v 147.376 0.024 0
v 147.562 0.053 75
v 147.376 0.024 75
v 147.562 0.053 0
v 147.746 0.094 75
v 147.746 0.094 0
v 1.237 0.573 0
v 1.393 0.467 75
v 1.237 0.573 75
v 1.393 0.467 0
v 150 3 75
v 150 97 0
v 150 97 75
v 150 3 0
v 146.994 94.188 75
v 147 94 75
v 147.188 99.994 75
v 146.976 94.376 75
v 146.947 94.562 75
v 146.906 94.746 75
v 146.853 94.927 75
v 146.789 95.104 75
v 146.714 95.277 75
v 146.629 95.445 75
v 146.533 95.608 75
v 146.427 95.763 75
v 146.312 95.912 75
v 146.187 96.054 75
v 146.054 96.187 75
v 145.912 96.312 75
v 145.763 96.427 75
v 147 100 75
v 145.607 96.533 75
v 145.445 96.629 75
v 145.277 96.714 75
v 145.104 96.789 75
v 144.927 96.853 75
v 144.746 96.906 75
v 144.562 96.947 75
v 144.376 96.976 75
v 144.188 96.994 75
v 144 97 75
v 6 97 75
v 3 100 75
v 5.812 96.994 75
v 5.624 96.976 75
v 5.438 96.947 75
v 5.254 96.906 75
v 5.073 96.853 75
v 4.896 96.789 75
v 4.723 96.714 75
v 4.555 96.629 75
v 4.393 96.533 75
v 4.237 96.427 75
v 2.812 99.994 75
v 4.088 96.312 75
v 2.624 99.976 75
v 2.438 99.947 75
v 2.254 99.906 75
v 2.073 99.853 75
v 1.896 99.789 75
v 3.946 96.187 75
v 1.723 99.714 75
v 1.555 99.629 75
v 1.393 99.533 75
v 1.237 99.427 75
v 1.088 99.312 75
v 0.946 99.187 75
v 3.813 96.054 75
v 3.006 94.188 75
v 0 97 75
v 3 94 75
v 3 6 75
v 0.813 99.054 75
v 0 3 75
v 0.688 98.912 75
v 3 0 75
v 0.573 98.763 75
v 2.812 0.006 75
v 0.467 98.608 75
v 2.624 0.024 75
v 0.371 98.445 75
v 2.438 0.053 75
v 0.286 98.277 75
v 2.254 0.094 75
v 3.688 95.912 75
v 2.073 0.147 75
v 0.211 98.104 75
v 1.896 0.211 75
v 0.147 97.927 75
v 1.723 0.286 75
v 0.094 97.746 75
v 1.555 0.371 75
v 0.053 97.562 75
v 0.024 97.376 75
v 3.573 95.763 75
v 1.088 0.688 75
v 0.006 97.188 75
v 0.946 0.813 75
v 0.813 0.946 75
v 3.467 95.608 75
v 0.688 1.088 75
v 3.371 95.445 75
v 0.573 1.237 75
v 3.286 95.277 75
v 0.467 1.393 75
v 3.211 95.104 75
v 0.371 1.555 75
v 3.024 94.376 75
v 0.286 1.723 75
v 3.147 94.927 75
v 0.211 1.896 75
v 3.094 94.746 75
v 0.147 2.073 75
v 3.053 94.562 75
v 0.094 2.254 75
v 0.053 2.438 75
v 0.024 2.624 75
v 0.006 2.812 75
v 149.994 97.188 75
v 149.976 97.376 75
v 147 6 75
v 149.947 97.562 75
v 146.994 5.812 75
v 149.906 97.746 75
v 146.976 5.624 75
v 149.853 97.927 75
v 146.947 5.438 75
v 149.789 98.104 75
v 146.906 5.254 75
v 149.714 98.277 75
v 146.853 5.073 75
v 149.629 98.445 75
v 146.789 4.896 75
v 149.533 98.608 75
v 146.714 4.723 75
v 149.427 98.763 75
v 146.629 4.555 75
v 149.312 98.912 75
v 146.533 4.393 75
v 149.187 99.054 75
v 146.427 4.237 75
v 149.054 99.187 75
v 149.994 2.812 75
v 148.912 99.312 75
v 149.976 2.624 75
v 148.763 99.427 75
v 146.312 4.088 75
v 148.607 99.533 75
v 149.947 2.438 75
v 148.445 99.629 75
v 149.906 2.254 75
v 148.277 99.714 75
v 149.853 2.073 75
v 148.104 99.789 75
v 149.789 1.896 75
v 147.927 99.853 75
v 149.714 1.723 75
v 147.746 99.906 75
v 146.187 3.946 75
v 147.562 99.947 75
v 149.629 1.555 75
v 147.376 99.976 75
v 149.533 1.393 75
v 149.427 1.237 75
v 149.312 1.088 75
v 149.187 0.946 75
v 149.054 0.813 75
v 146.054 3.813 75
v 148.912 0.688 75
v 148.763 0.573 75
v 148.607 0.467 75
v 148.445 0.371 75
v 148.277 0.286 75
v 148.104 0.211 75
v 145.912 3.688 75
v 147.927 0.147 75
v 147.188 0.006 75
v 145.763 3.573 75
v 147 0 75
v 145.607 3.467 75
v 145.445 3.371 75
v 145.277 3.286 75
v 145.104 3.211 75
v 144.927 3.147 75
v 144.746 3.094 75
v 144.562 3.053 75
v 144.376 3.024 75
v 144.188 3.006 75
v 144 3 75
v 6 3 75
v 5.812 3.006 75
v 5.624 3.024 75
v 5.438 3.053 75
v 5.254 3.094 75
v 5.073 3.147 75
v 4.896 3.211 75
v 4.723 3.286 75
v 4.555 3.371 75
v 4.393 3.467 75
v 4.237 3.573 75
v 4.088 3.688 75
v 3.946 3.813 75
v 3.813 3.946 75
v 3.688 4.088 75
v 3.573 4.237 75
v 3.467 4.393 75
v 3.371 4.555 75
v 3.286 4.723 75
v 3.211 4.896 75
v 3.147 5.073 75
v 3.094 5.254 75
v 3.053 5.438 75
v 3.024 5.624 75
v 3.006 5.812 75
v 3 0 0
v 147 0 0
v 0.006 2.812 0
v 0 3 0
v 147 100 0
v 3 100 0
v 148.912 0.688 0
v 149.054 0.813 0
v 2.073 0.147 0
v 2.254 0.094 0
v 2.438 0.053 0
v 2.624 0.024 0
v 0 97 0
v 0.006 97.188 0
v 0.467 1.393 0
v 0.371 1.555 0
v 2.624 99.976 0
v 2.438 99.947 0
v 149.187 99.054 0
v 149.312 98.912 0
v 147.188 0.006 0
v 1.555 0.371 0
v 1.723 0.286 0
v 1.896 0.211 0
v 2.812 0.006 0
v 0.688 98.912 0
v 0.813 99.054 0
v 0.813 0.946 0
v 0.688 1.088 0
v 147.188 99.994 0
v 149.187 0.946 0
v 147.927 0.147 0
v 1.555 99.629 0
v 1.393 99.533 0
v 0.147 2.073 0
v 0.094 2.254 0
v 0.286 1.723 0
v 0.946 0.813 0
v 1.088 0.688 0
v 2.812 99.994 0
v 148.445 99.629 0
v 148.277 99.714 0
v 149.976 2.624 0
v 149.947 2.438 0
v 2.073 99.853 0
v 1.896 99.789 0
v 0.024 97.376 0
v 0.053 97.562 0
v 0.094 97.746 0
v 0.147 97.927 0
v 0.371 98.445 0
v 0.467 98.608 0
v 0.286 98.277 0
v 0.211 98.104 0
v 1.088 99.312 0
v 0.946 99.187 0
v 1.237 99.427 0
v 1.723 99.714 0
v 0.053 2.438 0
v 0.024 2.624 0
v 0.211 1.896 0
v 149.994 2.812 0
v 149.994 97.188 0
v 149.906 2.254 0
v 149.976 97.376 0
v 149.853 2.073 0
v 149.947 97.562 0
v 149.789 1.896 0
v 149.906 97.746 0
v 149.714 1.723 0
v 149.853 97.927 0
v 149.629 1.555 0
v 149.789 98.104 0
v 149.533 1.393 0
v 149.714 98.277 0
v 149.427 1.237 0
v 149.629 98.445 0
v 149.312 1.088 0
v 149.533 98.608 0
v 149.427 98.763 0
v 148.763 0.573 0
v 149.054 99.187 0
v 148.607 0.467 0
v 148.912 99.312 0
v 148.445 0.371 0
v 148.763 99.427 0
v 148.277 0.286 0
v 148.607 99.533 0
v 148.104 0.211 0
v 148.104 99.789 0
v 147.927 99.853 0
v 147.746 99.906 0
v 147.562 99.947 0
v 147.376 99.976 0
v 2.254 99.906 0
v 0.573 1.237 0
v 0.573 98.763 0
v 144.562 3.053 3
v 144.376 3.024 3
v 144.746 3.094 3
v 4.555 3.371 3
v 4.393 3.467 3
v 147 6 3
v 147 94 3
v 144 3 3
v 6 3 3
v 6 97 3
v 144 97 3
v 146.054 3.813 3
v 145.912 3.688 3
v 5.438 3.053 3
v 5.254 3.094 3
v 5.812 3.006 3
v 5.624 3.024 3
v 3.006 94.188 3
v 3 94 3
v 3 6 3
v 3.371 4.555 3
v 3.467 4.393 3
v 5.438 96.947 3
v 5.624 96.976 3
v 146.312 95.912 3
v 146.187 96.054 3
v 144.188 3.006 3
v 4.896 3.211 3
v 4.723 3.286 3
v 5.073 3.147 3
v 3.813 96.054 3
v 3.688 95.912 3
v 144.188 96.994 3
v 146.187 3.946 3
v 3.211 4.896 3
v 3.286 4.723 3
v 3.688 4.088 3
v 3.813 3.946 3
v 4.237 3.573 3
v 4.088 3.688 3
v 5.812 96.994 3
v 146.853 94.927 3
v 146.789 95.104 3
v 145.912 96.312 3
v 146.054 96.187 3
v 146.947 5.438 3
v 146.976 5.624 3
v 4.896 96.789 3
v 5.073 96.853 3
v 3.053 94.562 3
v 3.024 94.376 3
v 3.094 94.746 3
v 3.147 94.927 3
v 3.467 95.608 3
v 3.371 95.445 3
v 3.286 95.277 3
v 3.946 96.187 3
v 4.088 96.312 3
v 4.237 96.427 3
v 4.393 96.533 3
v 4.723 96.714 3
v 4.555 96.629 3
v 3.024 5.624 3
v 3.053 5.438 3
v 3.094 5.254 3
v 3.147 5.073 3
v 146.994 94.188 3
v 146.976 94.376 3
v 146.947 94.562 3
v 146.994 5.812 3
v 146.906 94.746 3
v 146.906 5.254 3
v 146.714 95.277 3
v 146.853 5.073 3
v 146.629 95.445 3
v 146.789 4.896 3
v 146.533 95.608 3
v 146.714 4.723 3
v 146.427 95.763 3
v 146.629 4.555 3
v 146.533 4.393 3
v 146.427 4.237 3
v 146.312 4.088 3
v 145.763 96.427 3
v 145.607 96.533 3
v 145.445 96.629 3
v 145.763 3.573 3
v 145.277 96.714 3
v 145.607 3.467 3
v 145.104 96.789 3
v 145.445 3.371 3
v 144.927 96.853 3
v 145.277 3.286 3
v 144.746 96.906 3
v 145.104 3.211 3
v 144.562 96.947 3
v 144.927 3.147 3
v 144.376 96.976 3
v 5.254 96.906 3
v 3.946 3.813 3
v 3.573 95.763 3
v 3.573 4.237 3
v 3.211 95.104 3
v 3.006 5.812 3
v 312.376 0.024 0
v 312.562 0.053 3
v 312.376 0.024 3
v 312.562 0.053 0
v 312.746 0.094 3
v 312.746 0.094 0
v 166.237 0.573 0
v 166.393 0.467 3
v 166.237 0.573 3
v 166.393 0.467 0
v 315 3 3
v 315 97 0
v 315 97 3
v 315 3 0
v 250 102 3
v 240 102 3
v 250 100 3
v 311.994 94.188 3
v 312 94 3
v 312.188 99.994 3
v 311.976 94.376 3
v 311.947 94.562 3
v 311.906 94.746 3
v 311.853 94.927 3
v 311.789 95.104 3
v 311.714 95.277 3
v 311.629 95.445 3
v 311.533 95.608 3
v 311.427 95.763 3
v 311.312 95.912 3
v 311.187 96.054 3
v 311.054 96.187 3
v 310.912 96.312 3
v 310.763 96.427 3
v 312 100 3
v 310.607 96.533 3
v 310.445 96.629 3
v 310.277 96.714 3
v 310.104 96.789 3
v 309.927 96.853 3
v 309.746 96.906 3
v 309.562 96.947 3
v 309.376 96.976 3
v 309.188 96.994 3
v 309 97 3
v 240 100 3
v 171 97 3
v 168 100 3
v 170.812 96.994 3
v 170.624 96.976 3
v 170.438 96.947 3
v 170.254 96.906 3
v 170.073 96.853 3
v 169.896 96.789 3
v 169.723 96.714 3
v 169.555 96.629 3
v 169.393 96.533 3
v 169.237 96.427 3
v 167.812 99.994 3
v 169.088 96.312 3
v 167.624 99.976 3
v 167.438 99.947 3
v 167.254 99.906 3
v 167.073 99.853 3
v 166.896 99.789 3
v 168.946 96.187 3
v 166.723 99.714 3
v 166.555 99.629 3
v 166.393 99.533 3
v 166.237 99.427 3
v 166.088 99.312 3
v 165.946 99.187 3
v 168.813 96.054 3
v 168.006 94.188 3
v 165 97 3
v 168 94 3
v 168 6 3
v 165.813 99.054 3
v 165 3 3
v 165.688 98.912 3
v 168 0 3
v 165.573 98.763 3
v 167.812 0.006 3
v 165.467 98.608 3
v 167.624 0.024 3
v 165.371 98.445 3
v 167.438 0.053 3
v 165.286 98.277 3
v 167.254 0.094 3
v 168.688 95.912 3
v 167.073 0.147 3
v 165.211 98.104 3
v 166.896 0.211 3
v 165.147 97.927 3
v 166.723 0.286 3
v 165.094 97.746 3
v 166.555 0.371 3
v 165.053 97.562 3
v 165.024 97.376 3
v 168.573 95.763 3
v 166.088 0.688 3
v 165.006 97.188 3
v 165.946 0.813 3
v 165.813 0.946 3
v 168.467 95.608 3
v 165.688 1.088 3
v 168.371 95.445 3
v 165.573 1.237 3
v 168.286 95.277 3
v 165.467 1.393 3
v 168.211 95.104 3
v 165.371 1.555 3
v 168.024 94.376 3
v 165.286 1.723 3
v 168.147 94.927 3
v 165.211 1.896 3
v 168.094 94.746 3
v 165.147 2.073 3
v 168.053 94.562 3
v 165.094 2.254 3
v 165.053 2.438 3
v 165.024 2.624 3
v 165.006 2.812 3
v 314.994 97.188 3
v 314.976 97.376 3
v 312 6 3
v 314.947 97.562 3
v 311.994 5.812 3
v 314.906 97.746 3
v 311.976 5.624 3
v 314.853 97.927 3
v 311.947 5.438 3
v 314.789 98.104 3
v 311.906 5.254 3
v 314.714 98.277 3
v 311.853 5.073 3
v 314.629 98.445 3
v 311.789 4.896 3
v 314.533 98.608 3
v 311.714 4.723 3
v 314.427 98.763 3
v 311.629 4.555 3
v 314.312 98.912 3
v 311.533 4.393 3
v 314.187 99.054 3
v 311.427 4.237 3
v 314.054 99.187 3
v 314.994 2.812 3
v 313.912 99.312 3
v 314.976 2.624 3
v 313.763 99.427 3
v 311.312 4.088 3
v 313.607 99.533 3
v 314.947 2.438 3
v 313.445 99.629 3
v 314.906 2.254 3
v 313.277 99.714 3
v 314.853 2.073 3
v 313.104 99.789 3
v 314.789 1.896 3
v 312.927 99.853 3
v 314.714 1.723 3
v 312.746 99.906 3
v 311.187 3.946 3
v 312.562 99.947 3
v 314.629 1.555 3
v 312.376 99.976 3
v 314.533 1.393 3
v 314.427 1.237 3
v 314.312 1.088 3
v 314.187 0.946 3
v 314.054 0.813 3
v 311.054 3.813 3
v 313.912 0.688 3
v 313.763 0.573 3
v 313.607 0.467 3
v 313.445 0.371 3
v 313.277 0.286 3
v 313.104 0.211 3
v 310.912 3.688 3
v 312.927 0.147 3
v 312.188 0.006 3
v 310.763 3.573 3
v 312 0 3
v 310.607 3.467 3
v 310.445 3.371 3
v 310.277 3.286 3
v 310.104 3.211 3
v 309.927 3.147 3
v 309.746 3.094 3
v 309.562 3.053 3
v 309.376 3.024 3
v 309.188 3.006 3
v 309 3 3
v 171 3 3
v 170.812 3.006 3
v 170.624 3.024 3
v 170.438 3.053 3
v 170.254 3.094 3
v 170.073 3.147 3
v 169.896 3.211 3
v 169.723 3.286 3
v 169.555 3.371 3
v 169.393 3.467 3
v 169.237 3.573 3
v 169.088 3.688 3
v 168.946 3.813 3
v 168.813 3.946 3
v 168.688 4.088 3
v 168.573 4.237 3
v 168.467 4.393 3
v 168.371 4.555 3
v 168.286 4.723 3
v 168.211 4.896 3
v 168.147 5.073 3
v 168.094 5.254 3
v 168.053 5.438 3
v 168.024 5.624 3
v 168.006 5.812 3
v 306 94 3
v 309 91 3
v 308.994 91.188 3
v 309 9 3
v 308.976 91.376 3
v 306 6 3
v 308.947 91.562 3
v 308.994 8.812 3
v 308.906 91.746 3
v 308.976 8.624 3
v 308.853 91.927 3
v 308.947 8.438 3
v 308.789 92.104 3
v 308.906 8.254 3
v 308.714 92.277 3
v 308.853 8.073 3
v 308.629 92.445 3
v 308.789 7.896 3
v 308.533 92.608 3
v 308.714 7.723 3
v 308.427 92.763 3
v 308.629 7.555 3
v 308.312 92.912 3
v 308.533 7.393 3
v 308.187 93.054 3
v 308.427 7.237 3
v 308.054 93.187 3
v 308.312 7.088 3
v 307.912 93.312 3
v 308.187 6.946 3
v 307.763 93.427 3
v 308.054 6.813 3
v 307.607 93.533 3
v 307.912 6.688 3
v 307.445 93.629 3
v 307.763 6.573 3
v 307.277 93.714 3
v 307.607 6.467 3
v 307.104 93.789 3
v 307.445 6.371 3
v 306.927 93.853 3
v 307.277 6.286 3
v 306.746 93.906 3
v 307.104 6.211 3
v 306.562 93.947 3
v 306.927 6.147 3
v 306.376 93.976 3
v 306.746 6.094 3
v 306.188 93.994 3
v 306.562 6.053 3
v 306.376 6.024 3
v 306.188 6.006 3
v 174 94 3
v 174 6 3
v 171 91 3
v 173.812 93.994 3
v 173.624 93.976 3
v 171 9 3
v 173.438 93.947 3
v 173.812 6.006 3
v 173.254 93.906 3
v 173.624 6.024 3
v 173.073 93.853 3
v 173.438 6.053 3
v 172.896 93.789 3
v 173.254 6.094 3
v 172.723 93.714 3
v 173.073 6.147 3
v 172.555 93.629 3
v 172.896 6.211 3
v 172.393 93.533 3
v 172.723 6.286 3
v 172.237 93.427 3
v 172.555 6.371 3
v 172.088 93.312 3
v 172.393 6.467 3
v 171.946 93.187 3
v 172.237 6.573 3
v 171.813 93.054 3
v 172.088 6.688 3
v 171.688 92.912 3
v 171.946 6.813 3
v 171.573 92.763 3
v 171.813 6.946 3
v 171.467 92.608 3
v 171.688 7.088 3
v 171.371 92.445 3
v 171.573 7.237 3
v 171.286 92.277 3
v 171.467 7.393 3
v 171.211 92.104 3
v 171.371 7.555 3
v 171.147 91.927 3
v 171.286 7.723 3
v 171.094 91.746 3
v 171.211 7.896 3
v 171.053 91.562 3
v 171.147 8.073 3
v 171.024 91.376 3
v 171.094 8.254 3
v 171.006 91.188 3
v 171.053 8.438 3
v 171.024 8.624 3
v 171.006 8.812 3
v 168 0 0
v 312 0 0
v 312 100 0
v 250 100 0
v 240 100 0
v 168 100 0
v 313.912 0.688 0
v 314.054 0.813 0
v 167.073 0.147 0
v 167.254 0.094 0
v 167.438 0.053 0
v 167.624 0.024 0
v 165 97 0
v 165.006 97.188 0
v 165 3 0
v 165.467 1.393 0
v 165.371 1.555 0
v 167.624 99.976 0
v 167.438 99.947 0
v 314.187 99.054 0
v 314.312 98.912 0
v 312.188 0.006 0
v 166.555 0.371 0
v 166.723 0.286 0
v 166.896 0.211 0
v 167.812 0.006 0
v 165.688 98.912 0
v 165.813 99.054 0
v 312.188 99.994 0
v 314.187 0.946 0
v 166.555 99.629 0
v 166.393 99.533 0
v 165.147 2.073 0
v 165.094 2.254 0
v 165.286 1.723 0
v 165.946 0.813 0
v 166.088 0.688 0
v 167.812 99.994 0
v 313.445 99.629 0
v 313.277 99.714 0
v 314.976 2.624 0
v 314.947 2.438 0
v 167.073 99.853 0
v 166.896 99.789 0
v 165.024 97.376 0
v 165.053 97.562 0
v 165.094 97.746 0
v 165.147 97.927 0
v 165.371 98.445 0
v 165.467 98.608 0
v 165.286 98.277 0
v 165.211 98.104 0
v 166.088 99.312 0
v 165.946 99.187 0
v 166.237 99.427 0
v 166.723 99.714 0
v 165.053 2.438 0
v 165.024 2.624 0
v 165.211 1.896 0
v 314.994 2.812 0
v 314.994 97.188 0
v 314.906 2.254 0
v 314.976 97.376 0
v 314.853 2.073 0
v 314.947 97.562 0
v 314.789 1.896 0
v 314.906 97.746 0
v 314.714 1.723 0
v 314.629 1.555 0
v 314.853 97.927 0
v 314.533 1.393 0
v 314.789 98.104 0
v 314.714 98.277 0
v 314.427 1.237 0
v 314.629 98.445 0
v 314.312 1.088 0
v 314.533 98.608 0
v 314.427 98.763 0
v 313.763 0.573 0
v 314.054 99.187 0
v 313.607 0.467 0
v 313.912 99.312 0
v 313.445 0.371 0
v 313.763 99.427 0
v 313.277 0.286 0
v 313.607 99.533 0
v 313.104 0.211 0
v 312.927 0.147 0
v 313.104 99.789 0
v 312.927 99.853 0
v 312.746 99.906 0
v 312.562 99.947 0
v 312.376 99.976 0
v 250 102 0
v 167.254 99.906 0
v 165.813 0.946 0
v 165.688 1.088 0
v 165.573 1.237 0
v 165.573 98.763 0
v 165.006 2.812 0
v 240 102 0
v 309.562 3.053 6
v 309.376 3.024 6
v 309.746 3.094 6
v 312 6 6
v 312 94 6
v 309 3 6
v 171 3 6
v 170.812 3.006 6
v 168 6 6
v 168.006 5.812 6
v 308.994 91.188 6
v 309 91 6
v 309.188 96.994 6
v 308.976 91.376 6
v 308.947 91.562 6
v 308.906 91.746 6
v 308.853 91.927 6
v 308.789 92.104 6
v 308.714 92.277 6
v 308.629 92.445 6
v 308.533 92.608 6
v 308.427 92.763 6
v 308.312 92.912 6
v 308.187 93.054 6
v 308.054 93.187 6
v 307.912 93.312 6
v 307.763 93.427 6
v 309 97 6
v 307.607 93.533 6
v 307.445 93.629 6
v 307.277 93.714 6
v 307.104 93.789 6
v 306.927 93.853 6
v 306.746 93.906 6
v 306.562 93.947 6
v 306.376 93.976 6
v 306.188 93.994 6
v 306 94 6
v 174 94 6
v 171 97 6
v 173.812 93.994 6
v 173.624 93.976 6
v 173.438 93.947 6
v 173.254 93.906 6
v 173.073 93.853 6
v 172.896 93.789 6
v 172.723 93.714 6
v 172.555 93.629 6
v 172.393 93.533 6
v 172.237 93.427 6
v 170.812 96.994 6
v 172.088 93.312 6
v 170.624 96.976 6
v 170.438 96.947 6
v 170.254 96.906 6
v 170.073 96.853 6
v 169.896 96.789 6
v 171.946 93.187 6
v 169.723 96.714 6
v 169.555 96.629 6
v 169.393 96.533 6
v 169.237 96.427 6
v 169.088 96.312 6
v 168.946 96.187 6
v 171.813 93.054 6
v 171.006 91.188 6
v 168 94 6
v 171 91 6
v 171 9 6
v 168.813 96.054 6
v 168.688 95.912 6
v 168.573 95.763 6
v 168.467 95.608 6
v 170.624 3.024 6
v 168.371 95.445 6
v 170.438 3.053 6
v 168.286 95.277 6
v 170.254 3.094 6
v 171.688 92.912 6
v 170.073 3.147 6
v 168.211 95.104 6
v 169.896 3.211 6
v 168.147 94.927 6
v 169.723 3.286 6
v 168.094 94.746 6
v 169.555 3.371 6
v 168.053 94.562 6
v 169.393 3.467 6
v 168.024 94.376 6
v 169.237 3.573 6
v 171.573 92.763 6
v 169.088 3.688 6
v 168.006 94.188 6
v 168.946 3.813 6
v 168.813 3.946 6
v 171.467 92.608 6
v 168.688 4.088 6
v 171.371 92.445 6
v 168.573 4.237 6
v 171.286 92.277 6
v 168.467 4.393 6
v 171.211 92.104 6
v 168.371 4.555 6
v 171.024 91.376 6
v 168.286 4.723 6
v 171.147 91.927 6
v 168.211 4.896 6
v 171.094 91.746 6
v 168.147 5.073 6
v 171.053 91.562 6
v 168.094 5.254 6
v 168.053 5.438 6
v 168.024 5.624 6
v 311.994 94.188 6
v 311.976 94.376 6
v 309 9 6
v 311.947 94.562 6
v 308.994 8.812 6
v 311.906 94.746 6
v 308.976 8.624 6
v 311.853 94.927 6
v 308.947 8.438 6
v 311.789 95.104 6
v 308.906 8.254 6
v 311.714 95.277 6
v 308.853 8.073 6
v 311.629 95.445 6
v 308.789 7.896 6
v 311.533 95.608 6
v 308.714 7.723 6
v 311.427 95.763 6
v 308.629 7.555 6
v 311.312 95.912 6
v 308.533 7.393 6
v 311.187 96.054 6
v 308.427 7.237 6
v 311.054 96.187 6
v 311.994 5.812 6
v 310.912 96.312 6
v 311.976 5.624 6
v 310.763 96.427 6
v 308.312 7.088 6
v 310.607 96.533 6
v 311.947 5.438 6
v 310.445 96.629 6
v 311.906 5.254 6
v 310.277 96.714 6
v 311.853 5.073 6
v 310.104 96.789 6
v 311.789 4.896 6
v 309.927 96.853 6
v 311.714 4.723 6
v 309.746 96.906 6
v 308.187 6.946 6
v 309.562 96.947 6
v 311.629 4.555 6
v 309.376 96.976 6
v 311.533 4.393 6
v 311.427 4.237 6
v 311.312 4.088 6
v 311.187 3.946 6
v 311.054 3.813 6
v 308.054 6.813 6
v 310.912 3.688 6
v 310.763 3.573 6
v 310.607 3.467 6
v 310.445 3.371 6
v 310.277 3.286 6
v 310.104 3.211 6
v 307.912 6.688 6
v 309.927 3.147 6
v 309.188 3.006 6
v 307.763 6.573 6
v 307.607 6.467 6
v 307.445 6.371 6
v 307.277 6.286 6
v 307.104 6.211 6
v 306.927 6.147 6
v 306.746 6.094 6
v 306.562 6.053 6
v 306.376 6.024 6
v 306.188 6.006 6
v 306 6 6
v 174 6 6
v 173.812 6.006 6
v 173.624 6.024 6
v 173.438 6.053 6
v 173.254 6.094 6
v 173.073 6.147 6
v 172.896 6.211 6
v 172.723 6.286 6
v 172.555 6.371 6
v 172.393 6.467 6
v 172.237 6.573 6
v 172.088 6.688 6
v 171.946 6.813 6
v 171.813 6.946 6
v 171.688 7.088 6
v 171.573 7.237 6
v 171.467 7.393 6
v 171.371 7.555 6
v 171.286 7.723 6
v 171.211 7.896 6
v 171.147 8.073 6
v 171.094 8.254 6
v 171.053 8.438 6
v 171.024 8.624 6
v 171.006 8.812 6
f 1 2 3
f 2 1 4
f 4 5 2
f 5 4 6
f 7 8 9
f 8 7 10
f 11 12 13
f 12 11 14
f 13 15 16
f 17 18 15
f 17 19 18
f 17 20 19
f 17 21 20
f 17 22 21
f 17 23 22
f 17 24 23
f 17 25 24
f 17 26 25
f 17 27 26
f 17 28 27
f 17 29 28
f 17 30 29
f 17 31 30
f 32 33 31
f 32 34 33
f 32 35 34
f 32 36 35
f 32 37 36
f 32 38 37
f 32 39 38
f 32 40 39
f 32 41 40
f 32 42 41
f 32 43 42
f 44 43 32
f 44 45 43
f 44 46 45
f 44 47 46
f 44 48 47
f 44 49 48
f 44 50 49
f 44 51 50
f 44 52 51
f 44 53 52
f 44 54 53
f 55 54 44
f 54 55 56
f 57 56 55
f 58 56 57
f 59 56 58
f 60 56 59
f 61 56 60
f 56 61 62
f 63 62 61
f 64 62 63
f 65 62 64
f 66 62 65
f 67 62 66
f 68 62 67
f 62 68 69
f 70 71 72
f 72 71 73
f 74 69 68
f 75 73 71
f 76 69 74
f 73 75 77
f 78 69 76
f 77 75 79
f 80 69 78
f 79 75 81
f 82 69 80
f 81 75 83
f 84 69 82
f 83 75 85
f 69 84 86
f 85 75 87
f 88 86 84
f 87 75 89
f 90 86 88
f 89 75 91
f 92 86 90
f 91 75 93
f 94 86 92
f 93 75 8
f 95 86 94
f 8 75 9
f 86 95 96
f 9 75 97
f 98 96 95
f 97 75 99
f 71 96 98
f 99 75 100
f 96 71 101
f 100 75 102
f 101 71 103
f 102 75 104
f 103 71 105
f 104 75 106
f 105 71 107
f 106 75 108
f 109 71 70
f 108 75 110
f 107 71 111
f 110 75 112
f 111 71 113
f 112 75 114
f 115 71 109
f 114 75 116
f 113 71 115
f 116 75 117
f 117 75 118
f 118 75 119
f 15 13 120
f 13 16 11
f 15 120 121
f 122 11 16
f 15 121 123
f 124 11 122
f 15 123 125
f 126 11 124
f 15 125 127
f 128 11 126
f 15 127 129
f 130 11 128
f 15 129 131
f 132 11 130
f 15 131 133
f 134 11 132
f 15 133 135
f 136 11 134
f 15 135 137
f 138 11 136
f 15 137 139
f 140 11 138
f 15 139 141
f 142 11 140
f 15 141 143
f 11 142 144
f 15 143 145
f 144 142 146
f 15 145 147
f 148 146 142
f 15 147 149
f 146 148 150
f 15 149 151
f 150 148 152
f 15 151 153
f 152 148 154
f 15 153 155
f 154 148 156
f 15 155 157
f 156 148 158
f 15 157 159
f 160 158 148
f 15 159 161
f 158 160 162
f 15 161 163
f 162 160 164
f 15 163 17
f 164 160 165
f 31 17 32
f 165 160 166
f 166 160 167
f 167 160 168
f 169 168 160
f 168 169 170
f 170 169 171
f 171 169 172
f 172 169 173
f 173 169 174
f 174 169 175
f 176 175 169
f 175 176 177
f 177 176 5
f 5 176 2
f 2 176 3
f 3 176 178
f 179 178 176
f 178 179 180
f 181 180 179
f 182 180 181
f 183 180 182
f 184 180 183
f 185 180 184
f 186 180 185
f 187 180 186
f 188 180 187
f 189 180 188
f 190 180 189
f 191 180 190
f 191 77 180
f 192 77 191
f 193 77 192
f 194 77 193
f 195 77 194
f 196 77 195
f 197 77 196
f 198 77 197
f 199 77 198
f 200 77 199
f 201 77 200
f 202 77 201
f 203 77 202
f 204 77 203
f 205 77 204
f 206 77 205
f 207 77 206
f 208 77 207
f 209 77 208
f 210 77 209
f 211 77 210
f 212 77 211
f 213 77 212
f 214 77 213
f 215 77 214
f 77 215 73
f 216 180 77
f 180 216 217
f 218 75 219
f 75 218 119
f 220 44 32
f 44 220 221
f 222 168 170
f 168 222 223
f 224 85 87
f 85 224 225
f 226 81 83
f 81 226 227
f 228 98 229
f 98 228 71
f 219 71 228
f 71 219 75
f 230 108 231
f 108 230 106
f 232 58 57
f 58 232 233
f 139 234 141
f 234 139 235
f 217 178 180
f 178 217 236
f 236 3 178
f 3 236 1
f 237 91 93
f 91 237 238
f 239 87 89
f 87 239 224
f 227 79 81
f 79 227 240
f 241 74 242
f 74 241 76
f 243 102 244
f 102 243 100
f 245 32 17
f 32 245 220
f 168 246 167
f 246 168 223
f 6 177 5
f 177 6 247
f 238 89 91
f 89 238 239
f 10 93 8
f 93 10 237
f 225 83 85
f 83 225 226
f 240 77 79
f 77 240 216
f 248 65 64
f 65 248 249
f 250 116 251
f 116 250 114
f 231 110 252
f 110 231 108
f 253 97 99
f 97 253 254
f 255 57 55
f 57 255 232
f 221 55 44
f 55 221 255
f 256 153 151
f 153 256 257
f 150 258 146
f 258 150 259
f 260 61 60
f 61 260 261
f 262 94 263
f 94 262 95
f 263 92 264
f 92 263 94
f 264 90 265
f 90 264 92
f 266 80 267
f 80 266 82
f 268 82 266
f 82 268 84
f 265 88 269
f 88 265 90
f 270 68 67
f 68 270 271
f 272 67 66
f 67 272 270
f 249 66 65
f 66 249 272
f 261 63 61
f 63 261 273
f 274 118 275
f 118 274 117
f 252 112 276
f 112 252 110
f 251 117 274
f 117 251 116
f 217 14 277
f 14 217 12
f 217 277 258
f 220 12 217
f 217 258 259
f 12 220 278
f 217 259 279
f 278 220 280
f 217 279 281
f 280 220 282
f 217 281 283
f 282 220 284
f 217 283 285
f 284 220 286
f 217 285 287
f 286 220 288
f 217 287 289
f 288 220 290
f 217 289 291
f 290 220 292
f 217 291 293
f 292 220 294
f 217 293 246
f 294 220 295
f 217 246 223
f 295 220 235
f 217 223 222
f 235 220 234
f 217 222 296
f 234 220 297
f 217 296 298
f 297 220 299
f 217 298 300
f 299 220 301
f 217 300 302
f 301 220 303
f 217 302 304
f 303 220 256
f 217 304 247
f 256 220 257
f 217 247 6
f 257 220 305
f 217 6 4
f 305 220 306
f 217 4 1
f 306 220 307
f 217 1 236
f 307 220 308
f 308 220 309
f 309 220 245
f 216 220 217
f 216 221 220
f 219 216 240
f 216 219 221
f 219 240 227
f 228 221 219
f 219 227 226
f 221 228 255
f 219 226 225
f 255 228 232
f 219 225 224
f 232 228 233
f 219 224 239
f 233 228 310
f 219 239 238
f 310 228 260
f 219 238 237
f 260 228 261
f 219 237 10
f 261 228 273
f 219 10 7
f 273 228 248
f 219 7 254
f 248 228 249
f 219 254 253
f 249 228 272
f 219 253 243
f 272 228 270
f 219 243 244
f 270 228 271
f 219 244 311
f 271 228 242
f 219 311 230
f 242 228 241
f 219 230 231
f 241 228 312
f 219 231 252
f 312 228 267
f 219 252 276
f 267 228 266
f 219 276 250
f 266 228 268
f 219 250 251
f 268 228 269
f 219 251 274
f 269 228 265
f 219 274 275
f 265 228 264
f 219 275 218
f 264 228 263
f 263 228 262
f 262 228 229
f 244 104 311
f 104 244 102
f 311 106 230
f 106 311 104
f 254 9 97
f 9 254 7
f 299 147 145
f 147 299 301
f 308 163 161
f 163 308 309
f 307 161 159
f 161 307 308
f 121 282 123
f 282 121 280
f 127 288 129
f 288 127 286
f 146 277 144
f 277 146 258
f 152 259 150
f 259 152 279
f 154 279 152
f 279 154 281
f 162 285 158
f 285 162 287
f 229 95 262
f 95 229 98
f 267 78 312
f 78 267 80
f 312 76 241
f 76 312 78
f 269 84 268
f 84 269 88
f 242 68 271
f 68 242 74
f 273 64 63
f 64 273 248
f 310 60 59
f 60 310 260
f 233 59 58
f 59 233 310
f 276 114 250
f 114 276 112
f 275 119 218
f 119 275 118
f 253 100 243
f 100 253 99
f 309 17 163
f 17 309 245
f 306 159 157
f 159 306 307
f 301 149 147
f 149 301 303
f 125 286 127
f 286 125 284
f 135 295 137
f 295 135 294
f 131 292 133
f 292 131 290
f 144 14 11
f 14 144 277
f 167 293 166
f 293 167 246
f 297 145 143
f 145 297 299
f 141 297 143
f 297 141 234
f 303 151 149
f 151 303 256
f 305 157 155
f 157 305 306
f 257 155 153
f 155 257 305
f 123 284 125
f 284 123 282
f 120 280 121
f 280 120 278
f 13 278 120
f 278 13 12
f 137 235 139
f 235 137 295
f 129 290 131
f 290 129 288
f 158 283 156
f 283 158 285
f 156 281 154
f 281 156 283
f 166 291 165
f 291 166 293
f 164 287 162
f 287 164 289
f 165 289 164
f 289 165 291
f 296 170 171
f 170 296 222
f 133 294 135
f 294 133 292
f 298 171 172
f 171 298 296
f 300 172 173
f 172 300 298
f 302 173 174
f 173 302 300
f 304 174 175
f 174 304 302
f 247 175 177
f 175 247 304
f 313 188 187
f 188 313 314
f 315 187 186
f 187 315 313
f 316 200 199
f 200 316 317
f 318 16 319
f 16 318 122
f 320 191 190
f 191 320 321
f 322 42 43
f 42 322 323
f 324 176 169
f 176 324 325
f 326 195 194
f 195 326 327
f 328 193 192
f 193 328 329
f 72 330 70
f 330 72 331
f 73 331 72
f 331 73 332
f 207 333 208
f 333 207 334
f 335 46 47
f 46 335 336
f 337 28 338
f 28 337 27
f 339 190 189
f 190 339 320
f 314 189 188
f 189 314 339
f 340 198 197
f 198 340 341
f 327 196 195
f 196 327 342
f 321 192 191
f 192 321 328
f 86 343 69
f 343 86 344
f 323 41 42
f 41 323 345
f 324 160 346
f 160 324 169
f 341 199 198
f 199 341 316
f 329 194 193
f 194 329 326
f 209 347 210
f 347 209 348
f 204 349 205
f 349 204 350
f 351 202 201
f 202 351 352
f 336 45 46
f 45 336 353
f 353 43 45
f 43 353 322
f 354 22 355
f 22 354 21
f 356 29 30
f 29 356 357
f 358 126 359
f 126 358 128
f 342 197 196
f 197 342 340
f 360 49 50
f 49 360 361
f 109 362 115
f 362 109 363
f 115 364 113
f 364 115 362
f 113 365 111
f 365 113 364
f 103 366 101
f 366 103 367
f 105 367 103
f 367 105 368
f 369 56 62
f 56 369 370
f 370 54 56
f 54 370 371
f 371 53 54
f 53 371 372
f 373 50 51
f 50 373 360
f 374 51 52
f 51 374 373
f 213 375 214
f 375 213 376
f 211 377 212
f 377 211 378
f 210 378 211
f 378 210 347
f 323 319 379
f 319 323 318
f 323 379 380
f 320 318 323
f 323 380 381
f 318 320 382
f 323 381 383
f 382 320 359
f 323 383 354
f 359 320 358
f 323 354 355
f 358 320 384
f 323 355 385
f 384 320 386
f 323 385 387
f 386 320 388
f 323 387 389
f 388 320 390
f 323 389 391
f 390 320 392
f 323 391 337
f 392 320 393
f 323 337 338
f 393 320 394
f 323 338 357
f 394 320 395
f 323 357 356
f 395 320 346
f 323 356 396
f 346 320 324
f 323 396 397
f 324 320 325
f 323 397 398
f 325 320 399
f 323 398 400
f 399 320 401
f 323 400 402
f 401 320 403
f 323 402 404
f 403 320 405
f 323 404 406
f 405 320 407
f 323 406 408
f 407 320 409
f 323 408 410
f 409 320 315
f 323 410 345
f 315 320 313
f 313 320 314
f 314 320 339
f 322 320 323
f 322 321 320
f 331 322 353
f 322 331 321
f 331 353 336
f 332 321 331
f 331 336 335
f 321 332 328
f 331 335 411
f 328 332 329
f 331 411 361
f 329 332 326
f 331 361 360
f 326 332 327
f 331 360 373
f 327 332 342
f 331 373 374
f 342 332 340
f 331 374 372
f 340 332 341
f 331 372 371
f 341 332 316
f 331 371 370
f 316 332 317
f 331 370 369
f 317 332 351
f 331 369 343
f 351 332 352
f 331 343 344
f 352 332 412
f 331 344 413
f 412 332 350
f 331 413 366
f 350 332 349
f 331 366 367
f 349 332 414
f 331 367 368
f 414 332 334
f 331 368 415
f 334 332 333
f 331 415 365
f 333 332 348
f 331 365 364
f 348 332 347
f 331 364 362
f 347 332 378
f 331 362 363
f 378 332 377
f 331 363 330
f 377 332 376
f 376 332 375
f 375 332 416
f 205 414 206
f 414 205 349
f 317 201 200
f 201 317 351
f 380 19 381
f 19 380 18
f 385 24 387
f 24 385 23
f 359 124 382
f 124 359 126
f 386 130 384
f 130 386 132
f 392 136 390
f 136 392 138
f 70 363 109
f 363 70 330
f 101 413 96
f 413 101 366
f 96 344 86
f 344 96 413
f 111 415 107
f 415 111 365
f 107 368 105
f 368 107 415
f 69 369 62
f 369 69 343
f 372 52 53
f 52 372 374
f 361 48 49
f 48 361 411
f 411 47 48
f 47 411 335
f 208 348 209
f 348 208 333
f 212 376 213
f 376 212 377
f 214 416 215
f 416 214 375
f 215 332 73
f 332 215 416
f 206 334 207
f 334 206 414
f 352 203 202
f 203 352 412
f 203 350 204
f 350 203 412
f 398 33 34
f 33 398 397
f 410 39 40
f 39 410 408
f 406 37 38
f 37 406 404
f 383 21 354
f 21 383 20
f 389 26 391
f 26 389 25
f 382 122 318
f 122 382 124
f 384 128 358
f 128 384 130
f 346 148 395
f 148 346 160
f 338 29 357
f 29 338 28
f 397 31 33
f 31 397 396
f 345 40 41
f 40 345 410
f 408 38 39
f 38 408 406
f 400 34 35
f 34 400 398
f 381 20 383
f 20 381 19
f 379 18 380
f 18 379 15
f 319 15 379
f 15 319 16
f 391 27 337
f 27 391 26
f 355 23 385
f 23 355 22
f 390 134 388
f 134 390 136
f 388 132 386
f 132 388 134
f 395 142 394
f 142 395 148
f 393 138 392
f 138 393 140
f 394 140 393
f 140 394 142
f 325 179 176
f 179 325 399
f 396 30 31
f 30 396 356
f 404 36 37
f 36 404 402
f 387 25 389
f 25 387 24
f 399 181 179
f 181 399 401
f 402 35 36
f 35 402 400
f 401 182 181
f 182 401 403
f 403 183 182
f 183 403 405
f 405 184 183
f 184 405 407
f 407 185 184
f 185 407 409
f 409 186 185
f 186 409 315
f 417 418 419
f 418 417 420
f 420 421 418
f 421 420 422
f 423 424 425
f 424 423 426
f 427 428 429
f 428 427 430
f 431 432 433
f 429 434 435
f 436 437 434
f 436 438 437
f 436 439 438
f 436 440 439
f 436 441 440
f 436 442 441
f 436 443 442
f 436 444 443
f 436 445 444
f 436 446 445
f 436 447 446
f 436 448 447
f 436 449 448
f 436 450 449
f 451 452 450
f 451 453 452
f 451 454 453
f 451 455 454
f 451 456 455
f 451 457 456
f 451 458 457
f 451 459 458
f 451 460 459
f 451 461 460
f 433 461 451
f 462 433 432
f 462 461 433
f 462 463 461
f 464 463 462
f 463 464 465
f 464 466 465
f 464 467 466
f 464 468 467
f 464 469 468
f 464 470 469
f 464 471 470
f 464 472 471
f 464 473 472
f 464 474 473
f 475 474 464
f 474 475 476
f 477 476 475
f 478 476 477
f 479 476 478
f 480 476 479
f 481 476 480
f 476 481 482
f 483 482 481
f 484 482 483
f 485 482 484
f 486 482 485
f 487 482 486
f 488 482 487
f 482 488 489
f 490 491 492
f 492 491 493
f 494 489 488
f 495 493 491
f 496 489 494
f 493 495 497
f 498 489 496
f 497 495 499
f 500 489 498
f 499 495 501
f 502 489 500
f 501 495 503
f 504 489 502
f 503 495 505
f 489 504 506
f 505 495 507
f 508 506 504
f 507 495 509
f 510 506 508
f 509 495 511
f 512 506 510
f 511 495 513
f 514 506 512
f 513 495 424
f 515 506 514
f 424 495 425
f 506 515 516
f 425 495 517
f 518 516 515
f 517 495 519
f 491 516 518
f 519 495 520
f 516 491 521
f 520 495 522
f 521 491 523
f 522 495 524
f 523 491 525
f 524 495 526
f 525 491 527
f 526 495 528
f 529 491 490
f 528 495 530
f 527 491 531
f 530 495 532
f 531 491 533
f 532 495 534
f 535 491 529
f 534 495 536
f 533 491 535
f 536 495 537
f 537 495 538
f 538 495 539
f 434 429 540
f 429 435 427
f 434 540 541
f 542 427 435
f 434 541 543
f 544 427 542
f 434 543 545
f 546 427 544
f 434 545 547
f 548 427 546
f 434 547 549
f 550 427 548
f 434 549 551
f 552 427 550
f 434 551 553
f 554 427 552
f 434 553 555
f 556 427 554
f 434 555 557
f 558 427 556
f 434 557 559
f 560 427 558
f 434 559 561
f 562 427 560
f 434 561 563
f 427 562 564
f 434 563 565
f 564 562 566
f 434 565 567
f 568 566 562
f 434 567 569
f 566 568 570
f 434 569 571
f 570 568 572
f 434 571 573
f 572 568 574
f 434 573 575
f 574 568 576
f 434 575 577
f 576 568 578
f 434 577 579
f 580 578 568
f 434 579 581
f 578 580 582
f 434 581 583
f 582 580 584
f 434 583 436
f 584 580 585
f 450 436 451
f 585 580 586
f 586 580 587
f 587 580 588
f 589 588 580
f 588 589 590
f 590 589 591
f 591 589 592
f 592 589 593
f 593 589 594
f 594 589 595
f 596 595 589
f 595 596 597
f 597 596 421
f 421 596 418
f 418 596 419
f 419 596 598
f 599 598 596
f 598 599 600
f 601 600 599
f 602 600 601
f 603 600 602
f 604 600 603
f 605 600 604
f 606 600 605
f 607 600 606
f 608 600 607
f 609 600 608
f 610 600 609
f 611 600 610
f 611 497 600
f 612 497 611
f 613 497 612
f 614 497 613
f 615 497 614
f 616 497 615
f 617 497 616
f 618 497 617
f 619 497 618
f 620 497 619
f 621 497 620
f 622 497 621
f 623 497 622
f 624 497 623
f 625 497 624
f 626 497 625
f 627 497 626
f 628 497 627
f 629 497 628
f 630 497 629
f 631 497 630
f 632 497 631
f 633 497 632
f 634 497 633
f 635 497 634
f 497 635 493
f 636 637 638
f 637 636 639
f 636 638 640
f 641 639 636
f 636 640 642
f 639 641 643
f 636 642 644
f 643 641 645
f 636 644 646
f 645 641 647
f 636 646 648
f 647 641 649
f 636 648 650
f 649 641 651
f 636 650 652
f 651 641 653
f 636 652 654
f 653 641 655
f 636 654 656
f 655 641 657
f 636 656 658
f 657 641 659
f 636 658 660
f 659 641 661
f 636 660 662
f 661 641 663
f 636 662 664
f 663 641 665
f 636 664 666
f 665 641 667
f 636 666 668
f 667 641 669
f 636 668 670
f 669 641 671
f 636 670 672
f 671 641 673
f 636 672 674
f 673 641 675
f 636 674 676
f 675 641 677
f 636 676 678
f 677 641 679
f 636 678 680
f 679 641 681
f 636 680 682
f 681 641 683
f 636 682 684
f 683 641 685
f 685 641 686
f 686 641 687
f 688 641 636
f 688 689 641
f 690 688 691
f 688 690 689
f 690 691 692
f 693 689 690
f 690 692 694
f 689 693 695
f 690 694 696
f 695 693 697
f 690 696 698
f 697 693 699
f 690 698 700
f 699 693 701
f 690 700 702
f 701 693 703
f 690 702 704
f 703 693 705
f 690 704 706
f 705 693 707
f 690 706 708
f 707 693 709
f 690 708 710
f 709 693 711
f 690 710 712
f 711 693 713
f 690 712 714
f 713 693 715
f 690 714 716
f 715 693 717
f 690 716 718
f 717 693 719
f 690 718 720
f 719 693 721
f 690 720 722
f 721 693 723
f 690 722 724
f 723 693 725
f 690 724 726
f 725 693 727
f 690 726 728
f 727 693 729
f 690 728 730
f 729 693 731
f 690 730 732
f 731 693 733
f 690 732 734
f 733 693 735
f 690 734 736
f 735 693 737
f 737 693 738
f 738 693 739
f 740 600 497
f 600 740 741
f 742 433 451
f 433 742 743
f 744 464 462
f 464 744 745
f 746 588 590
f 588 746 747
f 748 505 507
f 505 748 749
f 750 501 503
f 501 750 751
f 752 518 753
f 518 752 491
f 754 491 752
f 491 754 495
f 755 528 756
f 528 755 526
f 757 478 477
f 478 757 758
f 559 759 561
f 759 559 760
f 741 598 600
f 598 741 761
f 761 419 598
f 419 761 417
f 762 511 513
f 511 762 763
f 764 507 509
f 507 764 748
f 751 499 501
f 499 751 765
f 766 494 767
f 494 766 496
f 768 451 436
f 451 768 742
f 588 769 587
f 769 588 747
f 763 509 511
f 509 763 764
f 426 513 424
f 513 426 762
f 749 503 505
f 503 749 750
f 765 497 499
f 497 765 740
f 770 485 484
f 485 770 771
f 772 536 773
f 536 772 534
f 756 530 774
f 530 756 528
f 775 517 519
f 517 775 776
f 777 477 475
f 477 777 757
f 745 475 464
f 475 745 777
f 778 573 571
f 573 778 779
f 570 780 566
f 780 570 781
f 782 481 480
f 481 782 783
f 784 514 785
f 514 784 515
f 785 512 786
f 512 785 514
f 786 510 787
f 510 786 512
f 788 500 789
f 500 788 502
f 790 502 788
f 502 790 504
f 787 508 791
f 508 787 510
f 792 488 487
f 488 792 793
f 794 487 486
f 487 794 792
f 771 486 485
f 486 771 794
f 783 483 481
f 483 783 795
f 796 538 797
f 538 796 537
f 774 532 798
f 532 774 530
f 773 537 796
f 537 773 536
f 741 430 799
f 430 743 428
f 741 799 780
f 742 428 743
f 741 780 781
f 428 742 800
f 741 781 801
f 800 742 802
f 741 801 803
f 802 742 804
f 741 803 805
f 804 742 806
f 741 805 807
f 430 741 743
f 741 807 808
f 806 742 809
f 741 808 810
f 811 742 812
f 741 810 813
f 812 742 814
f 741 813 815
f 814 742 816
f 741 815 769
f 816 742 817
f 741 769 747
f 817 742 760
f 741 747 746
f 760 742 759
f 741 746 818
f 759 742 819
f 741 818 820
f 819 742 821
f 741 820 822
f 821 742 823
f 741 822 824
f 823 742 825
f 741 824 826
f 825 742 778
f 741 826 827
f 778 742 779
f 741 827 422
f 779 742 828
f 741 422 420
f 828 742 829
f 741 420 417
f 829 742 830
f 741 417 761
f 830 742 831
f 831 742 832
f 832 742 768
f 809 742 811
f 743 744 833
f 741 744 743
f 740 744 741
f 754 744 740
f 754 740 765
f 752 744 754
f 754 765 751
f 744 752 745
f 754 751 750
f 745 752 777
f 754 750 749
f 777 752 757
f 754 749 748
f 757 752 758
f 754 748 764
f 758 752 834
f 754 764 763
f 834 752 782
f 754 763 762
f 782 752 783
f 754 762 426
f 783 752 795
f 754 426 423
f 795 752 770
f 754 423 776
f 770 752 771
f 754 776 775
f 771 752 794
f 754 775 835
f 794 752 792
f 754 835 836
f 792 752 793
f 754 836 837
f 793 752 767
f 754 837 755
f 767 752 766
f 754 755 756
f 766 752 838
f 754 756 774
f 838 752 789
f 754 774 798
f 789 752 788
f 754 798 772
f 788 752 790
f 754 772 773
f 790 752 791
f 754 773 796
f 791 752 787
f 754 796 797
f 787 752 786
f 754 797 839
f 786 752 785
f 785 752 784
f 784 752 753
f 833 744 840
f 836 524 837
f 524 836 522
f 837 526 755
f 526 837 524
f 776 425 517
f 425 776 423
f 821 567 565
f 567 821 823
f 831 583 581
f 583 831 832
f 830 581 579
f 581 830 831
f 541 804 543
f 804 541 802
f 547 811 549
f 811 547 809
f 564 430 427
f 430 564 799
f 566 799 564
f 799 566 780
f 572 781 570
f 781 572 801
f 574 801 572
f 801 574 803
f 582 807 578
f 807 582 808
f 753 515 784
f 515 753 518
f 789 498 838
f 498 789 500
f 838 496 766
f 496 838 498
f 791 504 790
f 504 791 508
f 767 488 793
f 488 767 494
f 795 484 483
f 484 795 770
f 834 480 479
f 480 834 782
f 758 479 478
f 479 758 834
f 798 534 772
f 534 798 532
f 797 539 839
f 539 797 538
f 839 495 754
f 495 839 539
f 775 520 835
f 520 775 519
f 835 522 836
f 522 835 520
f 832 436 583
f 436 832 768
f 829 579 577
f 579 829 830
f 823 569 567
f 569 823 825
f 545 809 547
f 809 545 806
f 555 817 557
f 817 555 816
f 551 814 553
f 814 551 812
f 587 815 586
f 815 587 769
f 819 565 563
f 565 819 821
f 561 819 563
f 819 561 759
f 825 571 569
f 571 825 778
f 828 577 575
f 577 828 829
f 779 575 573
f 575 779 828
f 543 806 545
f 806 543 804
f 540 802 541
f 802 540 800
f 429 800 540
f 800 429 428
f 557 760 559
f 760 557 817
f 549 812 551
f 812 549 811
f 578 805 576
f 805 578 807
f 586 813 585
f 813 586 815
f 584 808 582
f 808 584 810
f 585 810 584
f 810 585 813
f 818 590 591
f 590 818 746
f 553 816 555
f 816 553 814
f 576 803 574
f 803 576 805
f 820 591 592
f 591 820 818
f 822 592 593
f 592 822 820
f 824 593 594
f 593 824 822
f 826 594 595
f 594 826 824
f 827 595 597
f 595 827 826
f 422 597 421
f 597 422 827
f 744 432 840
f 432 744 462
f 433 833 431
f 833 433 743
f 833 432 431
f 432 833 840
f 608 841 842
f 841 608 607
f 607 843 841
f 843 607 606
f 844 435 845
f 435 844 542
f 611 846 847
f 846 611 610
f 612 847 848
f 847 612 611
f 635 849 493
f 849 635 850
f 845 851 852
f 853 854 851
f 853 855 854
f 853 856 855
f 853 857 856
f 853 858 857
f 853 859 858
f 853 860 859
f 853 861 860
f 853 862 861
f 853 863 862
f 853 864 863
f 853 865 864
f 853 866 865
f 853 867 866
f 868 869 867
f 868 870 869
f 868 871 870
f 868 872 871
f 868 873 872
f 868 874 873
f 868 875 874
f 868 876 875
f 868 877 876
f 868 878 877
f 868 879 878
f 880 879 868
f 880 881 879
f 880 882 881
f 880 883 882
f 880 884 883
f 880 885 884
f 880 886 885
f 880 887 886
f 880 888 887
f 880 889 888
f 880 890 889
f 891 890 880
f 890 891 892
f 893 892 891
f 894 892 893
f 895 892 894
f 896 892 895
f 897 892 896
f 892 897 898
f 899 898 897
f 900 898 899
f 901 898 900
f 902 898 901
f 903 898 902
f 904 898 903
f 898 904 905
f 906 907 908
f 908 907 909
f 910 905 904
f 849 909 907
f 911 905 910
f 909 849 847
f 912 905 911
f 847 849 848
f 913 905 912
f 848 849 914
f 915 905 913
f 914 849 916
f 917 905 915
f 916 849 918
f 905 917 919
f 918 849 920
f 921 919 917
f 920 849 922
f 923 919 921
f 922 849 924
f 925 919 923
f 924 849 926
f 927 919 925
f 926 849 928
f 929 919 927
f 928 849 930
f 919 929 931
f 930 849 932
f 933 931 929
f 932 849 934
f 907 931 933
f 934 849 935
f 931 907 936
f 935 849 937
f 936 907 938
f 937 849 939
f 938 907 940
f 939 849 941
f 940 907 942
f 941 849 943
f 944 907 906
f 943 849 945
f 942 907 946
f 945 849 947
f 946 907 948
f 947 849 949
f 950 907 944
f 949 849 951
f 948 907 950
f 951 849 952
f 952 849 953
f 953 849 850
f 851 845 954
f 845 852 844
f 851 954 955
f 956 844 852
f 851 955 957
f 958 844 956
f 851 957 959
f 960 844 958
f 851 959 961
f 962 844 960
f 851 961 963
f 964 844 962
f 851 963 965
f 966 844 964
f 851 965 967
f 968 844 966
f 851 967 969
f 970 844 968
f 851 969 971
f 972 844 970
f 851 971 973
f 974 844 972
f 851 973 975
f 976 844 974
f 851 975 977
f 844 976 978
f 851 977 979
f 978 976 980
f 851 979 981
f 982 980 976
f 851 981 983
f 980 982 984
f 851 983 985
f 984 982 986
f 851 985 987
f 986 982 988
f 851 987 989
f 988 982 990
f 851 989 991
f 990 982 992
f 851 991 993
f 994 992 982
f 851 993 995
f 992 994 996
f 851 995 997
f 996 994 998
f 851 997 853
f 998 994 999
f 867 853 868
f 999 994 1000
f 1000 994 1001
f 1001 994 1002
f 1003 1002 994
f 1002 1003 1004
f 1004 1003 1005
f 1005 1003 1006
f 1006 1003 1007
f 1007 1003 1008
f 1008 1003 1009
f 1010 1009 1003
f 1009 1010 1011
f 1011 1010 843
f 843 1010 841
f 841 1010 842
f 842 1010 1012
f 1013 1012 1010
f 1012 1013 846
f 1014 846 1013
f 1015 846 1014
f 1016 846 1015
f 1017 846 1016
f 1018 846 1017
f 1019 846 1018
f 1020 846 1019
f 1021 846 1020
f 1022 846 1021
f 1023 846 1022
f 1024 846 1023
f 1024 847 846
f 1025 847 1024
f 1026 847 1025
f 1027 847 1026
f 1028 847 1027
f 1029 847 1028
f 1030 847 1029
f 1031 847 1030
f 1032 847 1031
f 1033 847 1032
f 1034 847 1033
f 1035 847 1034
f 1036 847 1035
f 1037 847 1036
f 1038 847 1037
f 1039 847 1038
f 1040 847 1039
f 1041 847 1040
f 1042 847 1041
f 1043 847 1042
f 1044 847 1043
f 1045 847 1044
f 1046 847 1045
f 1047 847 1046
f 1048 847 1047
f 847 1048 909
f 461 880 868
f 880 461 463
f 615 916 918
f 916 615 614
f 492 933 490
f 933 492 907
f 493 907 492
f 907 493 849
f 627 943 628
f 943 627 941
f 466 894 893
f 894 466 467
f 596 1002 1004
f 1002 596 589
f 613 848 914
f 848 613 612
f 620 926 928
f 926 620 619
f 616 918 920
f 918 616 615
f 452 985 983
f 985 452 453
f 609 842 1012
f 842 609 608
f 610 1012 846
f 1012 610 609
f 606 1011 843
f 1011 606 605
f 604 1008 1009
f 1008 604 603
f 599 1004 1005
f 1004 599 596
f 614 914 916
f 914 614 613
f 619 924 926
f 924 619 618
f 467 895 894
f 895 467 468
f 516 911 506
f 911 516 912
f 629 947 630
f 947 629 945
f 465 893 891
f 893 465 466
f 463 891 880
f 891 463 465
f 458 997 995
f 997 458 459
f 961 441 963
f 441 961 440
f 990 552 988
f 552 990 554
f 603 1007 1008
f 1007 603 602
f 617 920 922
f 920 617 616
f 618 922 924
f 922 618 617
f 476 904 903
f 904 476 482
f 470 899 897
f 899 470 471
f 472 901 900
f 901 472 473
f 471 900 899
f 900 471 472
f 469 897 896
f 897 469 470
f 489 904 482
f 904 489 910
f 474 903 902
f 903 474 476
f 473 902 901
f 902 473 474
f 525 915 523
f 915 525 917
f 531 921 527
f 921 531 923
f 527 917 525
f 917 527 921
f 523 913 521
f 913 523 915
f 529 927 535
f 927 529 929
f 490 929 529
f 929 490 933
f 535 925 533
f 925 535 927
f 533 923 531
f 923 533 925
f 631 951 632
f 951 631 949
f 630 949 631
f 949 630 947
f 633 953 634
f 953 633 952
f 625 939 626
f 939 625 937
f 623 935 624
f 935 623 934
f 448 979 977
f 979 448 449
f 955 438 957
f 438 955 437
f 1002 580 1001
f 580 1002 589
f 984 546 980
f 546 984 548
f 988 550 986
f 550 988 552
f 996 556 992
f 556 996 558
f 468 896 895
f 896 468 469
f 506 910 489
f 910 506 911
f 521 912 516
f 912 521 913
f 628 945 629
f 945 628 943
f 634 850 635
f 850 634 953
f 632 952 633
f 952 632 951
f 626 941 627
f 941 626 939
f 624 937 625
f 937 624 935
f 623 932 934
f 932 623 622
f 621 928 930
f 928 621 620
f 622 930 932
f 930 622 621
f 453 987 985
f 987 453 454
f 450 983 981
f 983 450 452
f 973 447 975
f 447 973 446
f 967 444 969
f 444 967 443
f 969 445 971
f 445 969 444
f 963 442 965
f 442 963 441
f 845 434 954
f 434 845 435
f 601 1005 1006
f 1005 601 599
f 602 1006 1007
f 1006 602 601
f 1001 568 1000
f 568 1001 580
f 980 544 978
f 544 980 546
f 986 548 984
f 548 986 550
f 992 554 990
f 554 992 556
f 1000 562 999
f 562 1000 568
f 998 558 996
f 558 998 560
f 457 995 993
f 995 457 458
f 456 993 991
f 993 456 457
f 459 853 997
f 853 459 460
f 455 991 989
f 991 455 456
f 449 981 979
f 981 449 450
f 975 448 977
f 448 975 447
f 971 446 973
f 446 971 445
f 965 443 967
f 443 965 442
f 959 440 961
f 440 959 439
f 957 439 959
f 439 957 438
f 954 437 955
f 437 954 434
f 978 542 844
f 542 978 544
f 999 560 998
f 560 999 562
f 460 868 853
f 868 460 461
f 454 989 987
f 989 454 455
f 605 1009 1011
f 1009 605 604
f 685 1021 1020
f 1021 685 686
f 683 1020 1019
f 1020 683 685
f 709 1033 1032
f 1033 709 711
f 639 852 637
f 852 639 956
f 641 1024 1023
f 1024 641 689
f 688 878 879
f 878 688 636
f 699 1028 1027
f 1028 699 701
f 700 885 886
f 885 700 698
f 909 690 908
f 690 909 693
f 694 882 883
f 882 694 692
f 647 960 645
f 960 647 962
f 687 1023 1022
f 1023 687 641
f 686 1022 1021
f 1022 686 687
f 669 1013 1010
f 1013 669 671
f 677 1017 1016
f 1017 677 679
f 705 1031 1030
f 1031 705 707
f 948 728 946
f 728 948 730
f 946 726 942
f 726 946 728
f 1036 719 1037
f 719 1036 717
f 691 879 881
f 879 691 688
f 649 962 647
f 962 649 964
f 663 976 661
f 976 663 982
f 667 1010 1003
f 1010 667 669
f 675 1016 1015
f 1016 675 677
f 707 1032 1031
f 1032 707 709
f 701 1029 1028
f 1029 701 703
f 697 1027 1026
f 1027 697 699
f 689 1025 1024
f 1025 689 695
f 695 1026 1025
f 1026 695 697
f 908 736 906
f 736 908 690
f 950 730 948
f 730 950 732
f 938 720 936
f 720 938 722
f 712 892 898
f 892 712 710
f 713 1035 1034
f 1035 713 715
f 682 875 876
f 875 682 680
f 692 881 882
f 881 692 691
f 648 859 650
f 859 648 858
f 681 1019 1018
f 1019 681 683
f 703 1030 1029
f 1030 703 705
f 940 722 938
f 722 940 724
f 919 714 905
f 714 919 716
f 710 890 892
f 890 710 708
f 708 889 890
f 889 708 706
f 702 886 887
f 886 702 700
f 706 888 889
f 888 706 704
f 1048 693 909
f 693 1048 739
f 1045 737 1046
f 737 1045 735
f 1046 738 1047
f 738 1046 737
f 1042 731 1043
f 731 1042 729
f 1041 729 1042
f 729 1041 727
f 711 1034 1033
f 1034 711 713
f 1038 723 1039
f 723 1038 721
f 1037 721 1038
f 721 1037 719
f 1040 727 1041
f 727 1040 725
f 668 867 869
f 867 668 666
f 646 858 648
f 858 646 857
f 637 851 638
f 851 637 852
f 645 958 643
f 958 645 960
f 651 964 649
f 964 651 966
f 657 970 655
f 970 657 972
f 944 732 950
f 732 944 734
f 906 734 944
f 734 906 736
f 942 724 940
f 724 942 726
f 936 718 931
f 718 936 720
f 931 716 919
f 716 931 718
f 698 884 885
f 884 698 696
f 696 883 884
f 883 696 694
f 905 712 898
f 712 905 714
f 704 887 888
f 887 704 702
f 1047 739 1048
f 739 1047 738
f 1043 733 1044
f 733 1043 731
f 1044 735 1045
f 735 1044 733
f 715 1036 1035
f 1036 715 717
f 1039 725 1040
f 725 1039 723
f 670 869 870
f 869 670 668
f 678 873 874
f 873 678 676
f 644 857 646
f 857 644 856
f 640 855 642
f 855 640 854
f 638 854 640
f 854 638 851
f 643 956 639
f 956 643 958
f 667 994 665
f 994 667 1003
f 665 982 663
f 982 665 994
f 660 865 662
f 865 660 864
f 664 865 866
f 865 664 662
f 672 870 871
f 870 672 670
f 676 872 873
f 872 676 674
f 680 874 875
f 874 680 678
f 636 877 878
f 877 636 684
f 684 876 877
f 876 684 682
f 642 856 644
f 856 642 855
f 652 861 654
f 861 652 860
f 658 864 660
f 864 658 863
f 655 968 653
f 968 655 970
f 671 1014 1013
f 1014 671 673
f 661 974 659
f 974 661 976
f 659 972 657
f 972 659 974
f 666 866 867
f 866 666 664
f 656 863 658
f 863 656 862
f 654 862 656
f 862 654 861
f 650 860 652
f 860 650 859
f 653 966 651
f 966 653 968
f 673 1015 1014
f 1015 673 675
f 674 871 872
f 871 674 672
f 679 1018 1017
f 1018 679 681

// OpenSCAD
$fn = 100;
w = 150;
l = 100;
h = 75;
wall_thickness = 3;
lid_thickness = 6;
lid_clearance = 0;
rad = 3;

// Main box body
module outer_rec() {
    linear_extrude(height = h)
    offset(r=rad) offset(delta = -1*rad) square([w, l]);
}

module inner_rec() {
    linear_extrude(height = h)
    offset(r=rad) offset(delta = -1* rad) // round the corners
		square([w - (wall_thickness*2) , l - (wall_thickness*2) ]);
}
// Lid top
module top_l() {
    linear_extrude(height = lid_thickness/2)
    offset(r=rad) offset(delta = -1*rad) square([w, l]);
    translate([w*.5, l, 0])
    cube([10, 2, lid_thickness/2]);
}
// Lid bottom
module bottom_l() {
    difference() { // hollow out the lid bottom
        linear_extrude(height = lid_thickness/2)
        offset(r=rad) offset(delta = -1* rad) // round the corners
			square([(w - (wall_thickness*2))- lid_clearance , (l - (wall_thickness*2))-lid_clearance ]);
        translate([wall_thickness, wall_thickness, 0])
        linear_extrude(height = (lid_thickness/2)+1)
        offset(r=rad) offset(delta = -1* rad) square([(w - (wall_thickness*4)) , (l - (wall_thickness*4))]);
    }
}

// Hollow out the main box body
difference () {
outer_rec();
translate([wall_thickness,  wall_thickness, wall_thickness])
inner_rec();
}
// Create the lid and put it on the side
translate([w*1.1, 0, 0])
{
top_l();
translate([wall_thickness, wall_thickness, lid_thickness/2])
bottom_l();
}
